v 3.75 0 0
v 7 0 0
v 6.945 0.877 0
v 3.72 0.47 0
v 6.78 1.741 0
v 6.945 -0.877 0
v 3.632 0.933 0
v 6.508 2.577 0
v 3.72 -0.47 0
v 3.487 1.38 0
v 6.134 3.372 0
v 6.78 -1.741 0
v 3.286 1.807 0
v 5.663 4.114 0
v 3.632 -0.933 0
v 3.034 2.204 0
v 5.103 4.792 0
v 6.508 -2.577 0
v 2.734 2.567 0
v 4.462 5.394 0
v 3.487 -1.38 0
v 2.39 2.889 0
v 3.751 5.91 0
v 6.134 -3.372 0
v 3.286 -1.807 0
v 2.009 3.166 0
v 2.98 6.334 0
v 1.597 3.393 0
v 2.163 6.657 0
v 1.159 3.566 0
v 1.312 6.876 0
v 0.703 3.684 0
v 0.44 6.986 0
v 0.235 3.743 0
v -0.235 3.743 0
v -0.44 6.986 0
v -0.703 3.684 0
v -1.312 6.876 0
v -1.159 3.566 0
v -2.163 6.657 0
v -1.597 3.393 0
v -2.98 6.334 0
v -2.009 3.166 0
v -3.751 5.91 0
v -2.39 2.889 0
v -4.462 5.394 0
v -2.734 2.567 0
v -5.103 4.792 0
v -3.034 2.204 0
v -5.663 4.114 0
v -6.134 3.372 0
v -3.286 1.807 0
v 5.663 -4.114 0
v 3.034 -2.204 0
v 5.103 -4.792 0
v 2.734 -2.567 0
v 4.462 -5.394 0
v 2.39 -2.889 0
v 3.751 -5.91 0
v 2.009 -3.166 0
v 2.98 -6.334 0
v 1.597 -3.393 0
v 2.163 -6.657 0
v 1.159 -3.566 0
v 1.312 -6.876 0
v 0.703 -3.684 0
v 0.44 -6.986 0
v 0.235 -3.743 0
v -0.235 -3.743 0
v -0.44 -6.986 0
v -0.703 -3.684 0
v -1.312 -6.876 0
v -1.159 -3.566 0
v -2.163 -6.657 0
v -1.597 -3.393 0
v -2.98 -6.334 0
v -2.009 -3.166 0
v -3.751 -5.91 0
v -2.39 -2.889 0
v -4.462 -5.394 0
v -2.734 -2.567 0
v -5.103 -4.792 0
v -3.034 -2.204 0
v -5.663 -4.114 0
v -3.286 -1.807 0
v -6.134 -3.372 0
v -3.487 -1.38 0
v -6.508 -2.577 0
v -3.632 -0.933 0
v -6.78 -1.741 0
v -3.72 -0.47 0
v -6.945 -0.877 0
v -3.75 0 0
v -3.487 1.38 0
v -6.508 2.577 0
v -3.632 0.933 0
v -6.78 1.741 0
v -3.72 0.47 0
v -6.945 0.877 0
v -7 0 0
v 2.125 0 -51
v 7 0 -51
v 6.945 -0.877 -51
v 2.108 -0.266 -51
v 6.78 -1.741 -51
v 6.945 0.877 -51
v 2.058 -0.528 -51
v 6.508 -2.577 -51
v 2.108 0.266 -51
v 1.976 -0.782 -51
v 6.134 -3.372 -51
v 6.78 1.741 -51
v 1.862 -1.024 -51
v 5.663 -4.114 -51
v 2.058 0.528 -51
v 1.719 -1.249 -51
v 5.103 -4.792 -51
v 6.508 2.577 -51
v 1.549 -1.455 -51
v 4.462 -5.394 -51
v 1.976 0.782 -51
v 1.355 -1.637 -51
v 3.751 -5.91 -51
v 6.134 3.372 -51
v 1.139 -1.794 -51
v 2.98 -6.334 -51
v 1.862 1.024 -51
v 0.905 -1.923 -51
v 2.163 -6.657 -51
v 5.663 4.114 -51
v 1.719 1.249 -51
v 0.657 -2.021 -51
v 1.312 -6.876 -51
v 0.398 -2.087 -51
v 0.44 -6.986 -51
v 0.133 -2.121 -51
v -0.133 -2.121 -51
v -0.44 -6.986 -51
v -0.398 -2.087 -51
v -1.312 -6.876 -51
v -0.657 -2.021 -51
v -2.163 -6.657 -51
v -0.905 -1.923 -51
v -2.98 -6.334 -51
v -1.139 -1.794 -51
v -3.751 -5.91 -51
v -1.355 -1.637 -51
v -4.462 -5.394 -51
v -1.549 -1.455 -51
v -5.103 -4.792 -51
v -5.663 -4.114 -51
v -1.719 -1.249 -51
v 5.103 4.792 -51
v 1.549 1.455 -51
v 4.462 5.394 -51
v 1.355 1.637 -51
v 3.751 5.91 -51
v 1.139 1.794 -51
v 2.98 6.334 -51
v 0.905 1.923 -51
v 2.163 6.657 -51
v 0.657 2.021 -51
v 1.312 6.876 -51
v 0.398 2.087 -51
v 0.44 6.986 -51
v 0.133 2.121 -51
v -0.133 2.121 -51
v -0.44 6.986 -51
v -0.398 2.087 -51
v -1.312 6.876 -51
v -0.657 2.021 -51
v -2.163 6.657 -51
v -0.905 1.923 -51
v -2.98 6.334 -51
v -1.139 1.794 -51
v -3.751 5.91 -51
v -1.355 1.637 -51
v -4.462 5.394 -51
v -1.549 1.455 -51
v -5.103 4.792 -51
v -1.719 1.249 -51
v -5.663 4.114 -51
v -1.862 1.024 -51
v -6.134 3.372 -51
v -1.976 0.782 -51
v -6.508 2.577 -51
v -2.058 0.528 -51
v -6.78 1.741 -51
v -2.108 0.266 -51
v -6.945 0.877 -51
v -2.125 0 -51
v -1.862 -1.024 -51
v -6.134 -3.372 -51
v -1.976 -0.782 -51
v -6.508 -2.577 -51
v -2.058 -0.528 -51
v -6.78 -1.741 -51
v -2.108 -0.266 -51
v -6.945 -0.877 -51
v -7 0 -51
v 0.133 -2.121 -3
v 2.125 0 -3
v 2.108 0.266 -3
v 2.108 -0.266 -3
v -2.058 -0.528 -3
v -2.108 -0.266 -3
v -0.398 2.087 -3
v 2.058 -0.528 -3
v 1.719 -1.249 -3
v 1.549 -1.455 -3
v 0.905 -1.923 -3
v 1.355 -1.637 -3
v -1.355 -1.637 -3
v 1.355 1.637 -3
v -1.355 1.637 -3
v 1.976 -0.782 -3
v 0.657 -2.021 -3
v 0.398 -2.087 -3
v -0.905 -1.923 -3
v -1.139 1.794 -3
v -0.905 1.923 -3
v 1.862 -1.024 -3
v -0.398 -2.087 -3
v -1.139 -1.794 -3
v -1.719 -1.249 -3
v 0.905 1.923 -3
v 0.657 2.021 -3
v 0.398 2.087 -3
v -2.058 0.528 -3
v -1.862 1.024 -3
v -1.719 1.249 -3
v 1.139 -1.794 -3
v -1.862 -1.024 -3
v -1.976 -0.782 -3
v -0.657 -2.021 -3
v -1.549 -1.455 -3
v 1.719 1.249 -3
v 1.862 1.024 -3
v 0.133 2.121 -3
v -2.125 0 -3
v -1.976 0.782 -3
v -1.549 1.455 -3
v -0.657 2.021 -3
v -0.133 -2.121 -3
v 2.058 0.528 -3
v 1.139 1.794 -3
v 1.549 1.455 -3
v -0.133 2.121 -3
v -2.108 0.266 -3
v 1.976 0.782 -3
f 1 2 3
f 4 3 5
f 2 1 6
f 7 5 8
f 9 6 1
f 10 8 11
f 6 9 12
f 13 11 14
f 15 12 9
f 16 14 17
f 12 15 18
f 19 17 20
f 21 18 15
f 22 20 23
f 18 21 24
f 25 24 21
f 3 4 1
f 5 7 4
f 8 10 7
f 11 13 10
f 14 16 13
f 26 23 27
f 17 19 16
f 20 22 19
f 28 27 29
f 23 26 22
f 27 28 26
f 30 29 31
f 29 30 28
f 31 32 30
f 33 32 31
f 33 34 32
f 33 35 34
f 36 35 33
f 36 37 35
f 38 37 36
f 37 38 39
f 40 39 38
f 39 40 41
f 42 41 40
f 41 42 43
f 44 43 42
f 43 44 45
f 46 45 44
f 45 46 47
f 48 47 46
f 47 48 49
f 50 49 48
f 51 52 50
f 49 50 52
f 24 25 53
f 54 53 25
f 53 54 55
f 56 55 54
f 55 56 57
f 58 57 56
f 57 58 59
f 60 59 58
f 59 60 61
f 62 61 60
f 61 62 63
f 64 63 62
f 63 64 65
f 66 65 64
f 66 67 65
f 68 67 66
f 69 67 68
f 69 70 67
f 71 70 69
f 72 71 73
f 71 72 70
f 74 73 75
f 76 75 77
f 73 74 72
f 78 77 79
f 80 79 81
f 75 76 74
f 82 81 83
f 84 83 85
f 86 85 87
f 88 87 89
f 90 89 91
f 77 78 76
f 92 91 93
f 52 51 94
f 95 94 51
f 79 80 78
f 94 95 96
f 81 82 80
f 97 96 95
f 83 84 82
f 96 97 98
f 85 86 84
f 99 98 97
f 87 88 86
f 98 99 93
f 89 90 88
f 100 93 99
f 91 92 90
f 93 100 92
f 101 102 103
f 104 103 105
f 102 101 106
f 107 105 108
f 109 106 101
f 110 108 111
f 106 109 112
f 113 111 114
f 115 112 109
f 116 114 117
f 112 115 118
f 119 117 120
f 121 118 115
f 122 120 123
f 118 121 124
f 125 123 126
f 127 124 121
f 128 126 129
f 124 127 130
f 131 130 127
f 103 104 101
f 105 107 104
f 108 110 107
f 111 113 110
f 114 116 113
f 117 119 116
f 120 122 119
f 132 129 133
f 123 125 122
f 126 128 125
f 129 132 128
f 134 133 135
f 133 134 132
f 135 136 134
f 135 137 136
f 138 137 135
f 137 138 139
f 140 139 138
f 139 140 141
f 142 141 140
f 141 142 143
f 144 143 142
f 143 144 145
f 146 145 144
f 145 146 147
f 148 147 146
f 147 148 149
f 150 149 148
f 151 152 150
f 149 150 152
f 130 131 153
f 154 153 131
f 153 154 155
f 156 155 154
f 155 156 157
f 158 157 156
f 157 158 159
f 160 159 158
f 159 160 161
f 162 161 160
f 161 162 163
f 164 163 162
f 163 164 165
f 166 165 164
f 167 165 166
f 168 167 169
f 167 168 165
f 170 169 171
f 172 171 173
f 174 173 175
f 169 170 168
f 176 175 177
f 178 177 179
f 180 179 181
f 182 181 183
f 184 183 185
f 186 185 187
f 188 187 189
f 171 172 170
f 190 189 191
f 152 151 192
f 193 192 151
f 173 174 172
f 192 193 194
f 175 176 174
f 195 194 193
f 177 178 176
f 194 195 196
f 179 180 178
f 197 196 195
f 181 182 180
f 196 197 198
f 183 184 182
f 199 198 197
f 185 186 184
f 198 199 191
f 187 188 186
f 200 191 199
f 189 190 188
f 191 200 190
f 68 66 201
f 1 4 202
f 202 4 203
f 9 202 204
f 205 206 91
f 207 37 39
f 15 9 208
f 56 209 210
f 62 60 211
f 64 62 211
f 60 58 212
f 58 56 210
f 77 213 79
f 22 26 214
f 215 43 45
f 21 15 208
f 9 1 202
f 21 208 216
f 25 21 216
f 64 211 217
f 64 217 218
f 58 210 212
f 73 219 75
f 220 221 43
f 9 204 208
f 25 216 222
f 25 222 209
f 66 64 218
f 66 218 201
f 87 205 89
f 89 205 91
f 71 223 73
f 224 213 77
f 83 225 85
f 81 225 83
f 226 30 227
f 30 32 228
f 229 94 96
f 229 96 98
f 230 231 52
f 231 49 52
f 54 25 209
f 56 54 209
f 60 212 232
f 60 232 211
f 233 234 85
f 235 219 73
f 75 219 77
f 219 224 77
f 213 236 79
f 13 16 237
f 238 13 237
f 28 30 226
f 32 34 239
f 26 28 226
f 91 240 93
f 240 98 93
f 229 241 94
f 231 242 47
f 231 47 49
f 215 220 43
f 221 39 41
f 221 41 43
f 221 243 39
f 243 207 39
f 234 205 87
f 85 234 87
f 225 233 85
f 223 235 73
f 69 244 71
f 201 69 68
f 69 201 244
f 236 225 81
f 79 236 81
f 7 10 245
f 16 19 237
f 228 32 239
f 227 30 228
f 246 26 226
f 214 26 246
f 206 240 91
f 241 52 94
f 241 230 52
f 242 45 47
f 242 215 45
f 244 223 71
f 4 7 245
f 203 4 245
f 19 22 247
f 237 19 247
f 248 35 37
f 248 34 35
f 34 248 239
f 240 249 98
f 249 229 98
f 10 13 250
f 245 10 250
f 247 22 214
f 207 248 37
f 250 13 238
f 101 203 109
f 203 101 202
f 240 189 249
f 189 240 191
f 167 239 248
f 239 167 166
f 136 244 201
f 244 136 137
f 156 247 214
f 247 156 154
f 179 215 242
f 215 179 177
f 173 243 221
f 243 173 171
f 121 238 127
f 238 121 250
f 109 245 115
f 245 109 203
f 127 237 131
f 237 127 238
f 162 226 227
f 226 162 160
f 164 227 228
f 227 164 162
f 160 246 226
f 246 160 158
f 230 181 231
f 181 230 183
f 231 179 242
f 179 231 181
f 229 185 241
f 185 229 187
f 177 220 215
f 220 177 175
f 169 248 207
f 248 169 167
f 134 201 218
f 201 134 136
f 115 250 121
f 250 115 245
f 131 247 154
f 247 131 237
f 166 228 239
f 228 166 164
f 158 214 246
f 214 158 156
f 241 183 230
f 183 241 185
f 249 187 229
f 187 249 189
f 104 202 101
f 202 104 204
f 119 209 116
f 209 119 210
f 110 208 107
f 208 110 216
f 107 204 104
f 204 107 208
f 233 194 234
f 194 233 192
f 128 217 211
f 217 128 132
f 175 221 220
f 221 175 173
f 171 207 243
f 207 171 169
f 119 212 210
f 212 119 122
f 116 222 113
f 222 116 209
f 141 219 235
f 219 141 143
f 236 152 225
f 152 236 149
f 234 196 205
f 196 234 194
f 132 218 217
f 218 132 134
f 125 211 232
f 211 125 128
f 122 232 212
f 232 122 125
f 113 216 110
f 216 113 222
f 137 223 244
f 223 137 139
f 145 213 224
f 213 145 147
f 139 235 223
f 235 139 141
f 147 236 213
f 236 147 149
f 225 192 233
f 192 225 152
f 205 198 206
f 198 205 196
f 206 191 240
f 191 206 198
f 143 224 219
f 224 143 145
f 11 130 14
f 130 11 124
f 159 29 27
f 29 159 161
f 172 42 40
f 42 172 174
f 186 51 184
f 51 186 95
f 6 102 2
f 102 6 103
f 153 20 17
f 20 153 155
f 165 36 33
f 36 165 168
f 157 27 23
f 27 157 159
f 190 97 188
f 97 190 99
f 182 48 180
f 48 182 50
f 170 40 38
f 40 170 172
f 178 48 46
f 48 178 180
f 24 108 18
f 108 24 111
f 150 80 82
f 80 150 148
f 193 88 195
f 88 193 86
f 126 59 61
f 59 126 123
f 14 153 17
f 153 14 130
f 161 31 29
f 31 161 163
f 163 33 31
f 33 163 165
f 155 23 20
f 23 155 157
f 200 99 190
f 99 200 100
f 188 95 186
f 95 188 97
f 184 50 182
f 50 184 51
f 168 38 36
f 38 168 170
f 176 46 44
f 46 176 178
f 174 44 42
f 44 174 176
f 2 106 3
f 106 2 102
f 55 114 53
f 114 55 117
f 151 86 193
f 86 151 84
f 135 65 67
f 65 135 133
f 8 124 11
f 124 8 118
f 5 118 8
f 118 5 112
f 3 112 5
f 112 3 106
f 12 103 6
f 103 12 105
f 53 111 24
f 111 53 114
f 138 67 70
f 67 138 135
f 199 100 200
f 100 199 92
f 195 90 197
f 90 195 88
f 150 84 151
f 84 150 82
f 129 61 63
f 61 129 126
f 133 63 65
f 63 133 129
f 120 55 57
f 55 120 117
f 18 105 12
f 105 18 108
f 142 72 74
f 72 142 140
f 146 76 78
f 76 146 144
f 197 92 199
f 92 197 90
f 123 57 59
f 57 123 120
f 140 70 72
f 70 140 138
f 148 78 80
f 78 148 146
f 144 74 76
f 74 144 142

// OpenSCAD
$fn = 50;


difference() {
	union() {
		translate(v = [0, 0, -51.0000000000]) {
			cylinder(h = 51, r = 7.0000000000);
		}
	}
	union() {
		translate(v = [0, 0, 0]) {
			rotate(a = [0, 0, 0]) {
				difference() {
					union() {
						#translate(v = [0, 0, -51.0000000000]) {
							cylinder(h = 51, r = 2.0000000000);
						}
						#translate(v = [0, 0, -3]) {
							cylinder(h = 3, r1 = 2.1250000000, r2 = 3.7500000000);
						}
						#translate(v = [0, 0, -51.0000000000]) {
							cylinder(h = 51, r = 2.1250000000);
						}
						#translate(v = [0, 0, -51.0000000000]) {
							cylinder(h = 51, r = 2.0000000000);
						}
					}
					union();
				}
			}
		}
	}
}
